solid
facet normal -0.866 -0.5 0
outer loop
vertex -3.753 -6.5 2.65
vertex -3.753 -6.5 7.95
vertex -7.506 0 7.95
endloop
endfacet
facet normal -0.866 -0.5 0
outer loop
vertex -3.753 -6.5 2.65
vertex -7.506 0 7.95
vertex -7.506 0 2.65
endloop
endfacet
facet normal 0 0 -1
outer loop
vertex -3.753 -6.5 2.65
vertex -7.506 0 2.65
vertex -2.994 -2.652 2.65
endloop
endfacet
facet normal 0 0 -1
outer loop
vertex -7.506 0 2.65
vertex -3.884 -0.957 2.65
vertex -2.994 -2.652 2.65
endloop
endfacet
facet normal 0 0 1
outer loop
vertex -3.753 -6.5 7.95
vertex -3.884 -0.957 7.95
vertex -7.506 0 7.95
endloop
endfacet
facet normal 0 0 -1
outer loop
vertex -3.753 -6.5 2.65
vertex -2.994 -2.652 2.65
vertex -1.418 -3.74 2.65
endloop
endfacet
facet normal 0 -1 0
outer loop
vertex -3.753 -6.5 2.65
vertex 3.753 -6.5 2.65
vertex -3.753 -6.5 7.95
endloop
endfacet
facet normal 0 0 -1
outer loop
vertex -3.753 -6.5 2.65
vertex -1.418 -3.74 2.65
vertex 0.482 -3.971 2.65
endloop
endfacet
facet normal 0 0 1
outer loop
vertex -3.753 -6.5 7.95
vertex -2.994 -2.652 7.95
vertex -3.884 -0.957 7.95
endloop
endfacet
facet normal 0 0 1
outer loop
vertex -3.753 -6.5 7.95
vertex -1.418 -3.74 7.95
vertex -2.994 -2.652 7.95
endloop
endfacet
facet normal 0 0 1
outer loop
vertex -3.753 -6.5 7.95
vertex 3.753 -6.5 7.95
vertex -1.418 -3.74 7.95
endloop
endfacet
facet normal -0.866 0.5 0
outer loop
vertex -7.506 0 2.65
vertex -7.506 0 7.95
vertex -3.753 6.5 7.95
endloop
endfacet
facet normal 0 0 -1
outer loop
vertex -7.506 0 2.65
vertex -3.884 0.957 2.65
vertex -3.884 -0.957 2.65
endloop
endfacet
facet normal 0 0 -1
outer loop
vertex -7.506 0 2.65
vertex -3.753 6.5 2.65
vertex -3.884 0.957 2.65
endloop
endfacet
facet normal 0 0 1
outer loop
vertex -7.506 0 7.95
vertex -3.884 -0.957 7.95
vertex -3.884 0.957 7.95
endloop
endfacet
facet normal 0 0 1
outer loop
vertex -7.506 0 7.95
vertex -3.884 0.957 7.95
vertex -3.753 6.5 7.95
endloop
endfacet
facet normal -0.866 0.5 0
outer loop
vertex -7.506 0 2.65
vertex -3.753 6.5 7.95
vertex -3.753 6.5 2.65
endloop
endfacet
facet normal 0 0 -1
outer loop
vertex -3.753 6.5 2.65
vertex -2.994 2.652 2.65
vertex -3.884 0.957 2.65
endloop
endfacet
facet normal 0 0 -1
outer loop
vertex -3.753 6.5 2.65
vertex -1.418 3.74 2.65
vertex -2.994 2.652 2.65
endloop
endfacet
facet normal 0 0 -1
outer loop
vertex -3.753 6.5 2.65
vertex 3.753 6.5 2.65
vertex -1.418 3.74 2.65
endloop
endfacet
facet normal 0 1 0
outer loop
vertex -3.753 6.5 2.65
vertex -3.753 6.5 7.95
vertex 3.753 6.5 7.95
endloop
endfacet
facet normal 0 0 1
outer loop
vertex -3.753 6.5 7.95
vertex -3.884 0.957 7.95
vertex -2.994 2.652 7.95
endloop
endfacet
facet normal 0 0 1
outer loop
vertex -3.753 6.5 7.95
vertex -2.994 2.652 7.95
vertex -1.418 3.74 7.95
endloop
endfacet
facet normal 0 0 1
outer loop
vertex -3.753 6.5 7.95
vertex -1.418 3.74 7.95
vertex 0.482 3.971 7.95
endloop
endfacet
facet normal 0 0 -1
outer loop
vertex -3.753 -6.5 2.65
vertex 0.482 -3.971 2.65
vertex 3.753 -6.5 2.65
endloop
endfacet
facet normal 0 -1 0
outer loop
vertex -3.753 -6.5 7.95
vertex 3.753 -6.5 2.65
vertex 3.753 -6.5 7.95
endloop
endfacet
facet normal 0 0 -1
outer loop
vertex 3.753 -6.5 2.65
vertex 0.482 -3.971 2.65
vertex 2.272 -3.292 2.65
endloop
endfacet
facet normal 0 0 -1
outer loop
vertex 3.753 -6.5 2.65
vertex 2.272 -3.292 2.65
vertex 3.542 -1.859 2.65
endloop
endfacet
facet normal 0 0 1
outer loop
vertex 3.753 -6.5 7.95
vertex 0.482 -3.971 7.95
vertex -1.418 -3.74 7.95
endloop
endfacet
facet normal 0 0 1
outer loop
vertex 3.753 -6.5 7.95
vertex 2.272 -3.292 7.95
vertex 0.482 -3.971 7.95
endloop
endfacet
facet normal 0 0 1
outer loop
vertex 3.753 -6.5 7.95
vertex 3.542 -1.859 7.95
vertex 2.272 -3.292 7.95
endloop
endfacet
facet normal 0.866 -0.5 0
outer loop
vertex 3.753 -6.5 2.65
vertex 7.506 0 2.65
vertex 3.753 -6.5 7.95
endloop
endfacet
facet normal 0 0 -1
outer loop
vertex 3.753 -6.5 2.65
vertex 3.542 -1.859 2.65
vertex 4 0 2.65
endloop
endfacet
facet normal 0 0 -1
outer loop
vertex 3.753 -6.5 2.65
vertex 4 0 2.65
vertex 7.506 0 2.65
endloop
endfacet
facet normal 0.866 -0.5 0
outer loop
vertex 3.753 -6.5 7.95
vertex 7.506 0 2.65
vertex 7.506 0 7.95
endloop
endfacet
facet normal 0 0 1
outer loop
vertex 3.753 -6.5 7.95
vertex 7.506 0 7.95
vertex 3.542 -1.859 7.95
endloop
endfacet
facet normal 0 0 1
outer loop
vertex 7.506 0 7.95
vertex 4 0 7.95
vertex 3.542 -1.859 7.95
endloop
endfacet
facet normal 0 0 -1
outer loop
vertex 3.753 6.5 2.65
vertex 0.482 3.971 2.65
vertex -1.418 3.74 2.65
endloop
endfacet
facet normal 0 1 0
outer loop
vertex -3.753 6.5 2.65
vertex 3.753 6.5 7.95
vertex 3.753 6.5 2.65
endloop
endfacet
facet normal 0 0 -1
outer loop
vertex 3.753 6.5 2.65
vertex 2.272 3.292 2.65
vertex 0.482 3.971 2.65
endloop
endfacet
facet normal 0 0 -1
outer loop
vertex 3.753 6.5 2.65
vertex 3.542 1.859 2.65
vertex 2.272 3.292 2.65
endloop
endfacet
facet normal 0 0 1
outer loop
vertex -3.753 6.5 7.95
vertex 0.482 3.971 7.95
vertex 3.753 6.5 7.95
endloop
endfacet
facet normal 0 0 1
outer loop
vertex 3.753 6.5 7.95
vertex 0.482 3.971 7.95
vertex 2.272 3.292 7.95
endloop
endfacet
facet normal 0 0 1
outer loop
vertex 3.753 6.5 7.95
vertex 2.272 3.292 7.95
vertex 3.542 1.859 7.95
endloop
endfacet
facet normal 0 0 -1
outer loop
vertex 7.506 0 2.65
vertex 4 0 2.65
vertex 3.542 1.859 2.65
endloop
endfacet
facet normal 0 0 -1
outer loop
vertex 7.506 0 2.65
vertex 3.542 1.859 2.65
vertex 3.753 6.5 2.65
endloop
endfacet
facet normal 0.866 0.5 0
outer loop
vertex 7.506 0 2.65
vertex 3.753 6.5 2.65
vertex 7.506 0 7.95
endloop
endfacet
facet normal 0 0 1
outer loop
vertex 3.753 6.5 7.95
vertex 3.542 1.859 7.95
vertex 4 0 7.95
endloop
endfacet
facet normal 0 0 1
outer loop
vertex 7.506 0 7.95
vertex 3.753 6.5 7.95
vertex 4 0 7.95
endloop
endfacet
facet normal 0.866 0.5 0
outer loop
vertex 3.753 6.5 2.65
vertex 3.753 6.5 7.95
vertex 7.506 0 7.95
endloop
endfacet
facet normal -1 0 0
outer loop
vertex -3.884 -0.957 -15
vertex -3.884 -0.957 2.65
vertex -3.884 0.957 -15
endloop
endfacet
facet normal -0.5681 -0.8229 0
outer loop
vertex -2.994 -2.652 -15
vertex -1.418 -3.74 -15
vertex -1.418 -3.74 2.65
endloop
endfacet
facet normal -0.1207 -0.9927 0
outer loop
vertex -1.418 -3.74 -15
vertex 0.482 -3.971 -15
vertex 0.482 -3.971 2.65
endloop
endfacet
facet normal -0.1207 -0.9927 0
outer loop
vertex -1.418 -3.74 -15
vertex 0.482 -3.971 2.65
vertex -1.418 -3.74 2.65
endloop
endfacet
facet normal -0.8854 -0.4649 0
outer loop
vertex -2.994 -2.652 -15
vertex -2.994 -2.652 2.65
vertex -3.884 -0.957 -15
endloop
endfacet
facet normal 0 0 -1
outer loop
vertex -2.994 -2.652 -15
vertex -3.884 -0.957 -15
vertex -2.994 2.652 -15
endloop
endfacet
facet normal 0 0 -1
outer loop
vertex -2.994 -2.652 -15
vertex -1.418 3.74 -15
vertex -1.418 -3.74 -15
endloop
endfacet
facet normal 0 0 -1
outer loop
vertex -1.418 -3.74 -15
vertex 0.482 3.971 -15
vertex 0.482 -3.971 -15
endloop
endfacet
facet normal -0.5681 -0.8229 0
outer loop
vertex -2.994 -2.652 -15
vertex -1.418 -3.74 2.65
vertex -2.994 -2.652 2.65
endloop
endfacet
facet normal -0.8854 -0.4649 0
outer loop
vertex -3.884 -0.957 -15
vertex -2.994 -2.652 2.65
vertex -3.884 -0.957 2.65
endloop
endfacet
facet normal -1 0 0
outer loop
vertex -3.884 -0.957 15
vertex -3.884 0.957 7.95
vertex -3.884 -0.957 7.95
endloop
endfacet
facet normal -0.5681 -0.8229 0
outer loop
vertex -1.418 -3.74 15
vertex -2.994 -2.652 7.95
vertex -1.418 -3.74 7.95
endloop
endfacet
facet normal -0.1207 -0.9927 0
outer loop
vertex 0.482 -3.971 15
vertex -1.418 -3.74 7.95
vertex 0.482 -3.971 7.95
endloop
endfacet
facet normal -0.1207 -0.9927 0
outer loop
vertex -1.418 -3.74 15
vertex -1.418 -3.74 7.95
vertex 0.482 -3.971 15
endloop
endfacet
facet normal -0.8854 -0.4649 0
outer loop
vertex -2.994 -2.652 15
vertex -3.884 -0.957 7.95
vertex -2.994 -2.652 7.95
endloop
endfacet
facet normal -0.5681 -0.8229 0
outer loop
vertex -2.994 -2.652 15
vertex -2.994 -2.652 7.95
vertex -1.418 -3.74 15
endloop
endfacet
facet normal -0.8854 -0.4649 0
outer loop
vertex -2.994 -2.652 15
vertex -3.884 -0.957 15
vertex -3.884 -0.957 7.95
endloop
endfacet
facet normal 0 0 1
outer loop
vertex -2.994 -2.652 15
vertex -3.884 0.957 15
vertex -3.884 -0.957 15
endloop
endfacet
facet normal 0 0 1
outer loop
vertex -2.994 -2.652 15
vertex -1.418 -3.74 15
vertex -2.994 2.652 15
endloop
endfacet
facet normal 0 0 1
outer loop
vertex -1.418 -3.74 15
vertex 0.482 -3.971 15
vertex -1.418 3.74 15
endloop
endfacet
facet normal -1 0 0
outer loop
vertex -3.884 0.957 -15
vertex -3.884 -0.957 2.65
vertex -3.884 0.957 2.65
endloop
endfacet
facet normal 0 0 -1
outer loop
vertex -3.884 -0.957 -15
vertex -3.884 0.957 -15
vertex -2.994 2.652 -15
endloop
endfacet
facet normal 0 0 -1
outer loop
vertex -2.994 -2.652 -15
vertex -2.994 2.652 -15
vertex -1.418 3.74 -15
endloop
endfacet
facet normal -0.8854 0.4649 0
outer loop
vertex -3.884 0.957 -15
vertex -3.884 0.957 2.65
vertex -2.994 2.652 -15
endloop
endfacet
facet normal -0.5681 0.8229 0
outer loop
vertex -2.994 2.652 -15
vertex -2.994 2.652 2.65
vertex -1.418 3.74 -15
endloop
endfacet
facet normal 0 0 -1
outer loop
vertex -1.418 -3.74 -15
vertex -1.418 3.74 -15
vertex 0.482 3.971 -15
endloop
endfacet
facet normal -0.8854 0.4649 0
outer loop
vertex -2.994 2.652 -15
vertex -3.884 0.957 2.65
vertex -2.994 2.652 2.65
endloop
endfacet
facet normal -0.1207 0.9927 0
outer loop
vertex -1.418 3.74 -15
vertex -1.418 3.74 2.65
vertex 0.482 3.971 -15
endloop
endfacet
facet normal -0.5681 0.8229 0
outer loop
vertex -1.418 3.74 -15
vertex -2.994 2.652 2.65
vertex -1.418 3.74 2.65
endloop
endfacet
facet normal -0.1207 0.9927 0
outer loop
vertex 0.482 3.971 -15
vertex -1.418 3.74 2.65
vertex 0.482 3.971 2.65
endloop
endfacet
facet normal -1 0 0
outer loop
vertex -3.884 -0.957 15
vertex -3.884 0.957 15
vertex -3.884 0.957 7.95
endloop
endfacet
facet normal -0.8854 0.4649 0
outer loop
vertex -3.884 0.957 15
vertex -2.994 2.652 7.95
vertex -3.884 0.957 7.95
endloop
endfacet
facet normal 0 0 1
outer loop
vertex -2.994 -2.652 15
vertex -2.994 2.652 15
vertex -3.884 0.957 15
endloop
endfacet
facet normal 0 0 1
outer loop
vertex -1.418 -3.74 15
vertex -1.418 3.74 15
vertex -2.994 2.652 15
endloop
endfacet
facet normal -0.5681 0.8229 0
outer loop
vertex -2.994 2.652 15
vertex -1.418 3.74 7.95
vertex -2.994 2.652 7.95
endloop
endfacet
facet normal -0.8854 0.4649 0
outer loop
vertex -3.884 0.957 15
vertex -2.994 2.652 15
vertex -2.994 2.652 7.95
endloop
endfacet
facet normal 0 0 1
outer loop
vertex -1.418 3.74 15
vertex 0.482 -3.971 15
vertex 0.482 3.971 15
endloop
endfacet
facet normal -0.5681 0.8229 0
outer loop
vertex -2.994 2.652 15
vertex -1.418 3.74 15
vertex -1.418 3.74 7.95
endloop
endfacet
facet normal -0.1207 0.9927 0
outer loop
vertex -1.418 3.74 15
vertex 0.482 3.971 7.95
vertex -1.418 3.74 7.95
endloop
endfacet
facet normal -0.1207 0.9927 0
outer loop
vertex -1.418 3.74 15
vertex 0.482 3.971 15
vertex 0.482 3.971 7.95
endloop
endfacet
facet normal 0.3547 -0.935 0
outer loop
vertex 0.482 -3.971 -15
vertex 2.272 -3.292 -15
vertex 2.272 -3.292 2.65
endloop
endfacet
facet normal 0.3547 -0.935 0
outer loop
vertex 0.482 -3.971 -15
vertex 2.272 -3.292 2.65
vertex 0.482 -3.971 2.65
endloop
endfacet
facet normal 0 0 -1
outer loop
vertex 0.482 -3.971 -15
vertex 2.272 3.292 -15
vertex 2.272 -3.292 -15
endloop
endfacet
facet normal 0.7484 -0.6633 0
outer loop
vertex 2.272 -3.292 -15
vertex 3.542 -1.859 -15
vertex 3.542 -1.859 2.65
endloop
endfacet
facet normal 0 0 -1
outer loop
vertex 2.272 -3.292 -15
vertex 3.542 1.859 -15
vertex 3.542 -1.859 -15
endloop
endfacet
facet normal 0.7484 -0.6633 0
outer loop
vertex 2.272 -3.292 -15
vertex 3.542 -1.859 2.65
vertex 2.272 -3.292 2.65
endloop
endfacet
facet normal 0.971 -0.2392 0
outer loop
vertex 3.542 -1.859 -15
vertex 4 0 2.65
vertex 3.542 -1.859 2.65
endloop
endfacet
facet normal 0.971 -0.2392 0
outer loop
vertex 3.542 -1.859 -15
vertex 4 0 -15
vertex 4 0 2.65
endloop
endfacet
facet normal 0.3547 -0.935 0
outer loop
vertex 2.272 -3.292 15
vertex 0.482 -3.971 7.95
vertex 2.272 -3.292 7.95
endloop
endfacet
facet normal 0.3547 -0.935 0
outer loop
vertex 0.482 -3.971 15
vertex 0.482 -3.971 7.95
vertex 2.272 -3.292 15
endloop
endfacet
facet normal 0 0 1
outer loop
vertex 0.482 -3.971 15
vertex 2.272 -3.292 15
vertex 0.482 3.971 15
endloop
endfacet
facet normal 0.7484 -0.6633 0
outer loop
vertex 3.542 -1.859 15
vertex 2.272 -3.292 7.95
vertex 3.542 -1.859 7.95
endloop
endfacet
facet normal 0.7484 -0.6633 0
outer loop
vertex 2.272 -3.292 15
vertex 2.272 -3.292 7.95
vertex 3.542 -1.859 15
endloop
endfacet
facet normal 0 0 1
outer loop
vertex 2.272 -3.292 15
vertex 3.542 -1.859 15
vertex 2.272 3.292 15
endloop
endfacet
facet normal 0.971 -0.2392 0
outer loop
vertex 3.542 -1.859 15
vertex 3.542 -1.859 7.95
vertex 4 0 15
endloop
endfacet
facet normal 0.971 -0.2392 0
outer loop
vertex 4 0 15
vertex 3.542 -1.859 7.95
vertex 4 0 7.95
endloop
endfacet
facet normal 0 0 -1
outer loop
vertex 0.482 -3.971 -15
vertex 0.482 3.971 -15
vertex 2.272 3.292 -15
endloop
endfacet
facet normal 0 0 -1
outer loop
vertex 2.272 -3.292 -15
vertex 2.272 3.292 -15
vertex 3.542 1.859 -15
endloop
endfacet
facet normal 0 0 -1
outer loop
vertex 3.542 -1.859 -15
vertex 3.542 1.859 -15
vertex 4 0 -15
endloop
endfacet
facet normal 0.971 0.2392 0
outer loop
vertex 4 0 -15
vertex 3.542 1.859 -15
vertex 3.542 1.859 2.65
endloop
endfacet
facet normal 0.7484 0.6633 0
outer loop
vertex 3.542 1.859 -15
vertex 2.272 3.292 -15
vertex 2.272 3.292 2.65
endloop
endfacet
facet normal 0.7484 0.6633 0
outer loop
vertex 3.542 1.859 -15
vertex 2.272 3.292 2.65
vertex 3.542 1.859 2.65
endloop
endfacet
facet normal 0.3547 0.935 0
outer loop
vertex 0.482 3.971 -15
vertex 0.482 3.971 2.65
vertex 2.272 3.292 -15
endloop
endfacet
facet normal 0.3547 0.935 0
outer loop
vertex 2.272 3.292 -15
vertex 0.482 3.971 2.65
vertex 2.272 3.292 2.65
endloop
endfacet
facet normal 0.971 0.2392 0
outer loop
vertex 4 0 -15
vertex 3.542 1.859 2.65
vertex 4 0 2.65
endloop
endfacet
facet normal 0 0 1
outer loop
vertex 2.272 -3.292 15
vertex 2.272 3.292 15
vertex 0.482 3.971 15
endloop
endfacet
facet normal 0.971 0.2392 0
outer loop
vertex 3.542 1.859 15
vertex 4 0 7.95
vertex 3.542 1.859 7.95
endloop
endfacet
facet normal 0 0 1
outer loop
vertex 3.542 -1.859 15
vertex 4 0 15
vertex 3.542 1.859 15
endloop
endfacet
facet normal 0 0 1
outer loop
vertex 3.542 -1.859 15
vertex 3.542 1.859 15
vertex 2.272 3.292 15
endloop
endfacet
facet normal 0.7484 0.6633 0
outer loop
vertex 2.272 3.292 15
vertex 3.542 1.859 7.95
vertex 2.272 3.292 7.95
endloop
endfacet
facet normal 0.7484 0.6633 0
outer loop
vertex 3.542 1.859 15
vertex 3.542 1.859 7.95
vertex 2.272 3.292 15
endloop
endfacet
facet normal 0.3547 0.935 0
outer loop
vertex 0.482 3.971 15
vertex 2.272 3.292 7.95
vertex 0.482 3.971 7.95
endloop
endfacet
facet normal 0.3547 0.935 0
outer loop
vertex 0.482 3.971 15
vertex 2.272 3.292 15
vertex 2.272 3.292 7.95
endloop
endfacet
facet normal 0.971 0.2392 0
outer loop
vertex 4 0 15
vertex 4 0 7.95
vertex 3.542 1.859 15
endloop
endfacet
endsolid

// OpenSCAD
// M8 六角ボルト（規格に準じた寸法）
module hex_prism() {
    // 対辺距離が 13mm の正六角形の1辺長
    side = 13 / sqrt(3);
    pts = [for (i = [0:5]) [cos(i * 60) * side, sin(i * 60) * side]];
    linear_extrude(height = 5.3)
        polygon(points = pts);
}

module bolt() {
    // 六角ヘッド（底面が z=0）
    translate([0, 0, 5.3 / 2])
        hex_prism();

    // シャンク（z<0 側へ伸びる円柱）
    translate([0, 0, -15])  // 中心を z=-15 に置く
        cylinder(h = 30, r = 4, center = false);
}

bolt();
